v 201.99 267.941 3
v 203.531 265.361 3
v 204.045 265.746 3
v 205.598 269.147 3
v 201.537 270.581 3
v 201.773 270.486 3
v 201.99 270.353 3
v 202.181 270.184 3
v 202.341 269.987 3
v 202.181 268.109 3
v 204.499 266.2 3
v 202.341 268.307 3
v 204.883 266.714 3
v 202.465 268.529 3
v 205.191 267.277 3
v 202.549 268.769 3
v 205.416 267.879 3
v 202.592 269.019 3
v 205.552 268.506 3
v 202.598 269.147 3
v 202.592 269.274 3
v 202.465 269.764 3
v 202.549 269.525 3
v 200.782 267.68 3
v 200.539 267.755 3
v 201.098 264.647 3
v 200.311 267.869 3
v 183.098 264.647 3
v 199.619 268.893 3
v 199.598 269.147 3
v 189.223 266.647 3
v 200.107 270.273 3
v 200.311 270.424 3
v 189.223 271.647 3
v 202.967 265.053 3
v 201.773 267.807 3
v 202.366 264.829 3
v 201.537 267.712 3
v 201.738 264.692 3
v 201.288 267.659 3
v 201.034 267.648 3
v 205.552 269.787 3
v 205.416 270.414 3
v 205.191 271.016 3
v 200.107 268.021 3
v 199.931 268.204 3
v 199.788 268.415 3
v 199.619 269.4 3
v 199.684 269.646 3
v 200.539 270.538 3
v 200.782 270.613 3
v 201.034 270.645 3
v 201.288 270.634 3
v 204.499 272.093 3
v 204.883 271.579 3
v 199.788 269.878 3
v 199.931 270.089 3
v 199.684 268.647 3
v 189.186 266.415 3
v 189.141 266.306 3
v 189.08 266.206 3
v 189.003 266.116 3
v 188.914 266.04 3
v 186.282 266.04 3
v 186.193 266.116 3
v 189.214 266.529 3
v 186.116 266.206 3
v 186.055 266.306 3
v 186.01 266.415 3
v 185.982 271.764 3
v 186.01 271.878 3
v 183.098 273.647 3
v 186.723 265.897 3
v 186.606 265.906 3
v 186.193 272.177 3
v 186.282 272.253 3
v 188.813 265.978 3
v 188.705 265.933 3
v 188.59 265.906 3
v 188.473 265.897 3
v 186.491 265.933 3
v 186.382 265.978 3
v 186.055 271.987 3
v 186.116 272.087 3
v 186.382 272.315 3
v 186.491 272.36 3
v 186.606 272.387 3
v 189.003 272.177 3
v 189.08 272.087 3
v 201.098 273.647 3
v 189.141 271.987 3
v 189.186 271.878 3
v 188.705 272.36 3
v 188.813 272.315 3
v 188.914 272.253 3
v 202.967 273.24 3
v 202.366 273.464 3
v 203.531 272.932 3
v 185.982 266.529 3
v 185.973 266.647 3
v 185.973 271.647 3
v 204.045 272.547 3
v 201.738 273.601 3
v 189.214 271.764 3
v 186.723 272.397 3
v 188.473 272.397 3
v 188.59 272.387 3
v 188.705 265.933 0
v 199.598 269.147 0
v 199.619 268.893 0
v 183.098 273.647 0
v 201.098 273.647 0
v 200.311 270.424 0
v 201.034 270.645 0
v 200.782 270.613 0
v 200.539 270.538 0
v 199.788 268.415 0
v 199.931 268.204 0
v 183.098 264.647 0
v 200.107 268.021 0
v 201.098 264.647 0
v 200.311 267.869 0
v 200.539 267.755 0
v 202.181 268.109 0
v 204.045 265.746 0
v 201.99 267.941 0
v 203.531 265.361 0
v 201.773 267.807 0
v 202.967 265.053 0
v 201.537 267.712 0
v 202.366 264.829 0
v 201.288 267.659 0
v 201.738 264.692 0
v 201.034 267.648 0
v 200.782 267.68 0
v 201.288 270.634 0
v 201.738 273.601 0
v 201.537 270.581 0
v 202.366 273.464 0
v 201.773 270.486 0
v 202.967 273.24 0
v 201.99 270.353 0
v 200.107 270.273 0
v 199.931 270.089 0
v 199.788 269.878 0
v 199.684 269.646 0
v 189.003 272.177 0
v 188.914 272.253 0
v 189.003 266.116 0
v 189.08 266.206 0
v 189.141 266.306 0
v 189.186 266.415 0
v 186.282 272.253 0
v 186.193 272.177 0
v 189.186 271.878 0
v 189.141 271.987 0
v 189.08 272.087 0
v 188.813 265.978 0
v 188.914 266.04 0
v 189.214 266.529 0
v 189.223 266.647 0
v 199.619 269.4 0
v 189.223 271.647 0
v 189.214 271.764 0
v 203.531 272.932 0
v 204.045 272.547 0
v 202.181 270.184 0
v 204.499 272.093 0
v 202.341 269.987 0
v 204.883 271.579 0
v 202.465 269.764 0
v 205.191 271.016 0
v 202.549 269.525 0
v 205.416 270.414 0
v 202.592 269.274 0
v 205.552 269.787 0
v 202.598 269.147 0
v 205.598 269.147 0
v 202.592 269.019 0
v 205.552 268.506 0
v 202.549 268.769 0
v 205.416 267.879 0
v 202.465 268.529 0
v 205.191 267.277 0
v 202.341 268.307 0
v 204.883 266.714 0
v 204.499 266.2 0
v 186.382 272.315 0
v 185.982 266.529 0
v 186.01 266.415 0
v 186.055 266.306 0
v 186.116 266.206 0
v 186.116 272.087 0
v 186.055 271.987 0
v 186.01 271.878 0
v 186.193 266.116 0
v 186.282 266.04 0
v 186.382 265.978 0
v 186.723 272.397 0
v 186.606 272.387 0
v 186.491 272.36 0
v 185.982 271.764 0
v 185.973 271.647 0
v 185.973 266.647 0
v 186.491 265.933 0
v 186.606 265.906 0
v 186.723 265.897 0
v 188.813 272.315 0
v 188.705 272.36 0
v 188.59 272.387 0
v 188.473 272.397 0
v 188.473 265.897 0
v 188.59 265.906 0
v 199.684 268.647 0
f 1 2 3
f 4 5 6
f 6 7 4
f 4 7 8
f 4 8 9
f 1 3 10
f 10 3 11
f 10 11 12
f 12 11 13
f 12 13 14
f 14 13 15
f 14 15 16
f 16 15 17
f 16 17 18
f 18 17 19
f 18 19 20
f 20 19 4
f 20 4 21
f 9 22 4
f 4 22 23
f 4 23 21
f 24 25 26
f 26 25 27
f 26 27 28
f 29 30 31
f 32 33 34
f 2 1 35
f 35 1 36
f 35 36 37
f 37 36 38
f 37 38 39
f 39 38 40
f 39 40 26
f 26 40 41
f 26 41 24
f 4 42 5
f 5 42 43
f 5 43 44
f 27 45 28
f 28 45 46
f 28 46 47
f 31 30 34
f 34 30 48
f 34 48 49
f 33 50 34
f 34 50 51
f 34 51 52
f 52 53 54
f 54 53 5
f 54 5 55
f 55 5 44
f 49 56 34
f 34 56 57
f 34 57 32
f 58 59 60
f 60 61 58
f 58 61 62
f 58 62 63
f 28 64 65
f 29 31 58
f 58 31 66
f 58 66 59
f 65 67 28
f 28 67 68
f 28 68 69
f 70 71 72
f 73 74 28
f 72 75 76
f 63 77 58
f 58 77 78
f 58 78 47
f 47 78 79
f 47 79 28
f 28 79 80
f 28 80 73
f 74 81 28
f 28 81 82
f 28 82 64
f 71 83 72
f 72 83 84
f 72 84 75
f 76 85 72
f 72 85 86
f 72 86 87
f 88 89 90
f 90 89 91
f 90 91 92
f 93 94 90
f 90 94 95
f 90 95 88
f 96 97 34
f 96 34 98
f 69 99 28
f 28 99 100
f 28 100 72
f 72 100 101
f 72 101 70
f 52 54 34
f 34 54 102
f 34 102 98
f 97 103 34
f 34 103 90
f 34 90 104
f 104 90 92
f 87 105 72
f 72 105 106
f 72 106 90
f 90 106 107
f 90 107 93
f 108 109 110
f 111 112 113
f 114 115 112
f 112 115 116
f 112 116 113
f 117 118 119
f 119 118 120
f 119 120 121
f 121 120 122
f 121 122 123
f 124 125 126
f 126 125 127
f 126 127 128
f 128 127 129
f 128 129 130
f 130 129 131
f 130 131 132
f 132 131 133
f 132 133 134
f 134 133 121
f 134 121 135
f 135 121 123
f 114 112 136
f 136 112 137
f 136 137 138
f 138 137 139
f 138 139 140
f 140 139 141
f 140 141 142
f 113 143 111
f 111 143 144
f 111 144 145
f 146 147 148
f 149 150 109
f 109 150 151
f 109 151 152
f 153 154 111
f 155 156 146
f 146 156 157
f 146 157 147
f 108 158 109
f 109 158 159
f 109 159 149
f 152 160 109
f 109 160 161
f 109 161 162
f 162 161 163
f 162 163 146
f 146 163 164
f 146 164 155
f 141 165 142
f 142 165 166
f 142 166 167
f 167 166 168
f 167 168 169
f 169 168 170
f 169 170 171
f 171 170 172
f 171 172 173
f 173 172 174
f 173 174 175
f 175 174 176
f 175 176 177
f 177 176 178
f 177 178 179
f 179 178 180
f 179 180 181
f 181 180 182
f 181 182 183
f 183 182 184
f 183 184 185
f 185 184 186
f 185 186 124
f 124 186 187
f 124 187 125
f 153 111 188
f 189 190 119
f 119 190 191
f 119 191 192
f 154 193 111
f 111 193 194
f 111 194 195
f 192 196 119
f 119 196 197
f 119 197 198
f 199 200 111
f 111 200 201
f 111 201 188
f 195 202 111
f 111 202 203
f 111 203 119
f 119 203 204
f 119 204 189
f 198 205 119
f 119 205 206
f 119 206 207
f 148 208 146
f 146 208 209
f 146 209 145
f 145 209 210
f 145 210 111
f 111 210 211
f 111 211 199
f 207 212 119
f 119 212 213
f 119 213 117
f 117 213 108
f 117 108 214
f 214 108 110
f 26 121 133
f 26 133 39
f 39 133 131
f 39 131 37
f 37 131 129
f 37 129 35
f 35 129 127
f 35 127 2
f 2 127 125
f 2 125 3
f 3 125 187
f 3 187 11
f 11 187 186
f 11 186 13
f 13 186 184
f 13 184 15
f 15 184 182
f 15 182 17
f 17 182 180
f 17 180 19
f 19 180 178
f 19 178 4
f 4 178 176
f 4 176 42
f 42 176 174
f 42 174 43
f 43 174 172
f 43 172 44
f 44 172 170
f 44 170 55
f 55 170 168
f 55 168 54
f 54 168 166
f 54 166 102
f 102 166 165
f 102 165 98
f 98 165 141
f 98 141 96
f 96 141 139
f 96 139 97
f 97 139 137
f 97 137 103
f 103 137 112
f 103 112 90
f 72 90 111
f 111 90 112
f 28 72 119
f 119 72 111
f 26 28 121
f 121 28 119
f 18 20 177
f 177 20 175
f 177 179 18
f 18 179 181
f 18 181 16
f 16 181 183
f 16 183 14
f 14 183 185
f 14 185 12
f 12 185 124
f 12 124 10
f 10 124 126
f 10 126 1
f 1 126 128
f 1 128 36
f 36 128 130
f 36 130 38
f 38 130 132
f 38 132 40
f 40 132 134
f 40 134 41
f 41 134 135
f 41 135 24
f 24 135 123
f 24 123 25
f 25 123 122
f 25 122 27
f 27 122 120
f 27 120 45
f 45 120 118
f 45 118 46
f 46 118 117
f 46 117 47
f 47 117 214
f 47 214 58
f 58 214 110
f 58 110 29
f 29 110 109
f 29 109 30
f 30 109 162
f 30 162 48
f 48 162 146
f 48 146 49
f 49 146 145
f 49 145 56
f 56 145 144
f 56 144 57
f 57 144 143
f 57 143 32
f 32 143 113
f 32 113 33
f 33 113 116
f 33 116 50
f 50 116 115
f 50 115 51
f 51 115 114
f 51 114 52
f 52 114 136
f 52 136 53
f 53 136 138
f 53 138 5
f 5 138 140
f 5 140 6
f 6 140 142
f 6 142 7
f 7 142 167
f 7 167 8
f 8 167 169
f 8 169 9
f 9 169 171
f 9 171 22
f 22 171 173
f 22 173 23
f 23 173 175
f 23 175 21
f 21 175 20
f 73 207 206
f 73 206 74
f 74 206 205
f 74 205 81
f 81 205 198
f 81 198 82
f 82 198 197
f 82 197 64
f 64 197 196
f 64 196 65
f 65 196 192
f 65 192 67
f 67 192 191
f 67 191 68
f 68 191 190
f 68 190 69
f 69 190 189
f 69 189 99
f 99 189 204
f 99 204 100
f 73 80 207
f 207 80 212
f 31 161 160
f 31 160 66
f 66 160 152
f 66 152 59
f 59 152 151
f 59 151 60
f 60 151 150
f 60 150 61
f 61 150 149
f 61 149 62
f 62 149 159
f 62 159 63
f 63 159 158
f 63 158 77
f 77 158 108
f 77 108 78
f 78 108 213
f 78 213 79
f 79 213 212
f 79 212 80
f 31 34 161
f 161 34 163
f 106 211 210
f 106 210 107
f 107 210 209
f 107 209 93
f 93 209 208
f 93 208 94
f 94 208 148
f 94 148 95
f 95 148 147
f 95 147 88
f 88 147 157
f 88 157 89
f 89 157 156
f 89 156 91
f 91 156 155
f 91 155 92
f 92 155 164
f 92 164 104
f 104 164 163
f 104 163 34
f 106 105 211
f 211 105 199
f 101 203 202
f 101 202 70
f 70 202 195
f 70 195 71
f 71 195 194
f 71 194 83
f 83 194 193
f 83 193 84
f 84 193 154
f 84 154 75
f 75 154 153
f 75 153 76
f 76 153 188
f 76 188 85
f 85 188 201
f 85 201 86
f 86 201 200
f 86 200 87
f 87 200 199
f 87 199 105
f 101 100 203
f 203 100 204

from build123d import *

# Parameters (mm, degrees)
MODEL_R                 = 1.5
SALIENTE_EXTRUIR1_DEPTH = 3


with BuildPart() as part:
    # Model → Saliente-Extruir1 (new body)
    with BuildSketch(Plane.XY):
        with BuildLine():
            Line((183.097853309, 273.646547335), (201.097853309, 273.646547335))
            ThreePointArc((201.097853309, 273.646547335), (205.597853309, 269.146547335), (201.097853309, 264.646547335))
            Line((201.097853309, 264.646547335), (183.097853309, 264.646547335))
            Line((183.097853309, 264.646547335), (183.097853309, 273.646547335))
        make_face()
        with Locations((201.097853309, 269.146547335)):
            Circle(MODEL_R, mode=Mode.SUBTRACT)
        with BuildLine():
            Line((186.722853309, 265.896547335), (188.472853309, 265.896547335))
            ThreePointArc((188.472853309, 265.896547335), (189.003183395, 266.116217249), (189.222853309, 266.646547335))
            Line((189.222853309, 266.646547335), (189.222853309, 271.646547335))
            ThreePointArc((189.222853309, 271.646547335), (189.003183395, 272.176877421), (188.472853309, 272.396547335))
            Line((188.472853309, 272.396547335), (186.722853309, 272.396547335))
            ThreePointArc((186.722853309, 272.396547335), (186.192523223, 272.176877421), (185.972853309, 271.646547335))
            Line((185.972853309, 271.646547335), (185.972853309, 266.646547335))
            ThreePointArc((185.972853309, 266.646547335), (186.192523223, 266.116217249), (186.722853309, 265.896547335))
        make_face(mode=Mode.SUBTRACT)
    extrude(amount=SALIENTE_EXTRUIR1_DEPTH)


solid = part.part
